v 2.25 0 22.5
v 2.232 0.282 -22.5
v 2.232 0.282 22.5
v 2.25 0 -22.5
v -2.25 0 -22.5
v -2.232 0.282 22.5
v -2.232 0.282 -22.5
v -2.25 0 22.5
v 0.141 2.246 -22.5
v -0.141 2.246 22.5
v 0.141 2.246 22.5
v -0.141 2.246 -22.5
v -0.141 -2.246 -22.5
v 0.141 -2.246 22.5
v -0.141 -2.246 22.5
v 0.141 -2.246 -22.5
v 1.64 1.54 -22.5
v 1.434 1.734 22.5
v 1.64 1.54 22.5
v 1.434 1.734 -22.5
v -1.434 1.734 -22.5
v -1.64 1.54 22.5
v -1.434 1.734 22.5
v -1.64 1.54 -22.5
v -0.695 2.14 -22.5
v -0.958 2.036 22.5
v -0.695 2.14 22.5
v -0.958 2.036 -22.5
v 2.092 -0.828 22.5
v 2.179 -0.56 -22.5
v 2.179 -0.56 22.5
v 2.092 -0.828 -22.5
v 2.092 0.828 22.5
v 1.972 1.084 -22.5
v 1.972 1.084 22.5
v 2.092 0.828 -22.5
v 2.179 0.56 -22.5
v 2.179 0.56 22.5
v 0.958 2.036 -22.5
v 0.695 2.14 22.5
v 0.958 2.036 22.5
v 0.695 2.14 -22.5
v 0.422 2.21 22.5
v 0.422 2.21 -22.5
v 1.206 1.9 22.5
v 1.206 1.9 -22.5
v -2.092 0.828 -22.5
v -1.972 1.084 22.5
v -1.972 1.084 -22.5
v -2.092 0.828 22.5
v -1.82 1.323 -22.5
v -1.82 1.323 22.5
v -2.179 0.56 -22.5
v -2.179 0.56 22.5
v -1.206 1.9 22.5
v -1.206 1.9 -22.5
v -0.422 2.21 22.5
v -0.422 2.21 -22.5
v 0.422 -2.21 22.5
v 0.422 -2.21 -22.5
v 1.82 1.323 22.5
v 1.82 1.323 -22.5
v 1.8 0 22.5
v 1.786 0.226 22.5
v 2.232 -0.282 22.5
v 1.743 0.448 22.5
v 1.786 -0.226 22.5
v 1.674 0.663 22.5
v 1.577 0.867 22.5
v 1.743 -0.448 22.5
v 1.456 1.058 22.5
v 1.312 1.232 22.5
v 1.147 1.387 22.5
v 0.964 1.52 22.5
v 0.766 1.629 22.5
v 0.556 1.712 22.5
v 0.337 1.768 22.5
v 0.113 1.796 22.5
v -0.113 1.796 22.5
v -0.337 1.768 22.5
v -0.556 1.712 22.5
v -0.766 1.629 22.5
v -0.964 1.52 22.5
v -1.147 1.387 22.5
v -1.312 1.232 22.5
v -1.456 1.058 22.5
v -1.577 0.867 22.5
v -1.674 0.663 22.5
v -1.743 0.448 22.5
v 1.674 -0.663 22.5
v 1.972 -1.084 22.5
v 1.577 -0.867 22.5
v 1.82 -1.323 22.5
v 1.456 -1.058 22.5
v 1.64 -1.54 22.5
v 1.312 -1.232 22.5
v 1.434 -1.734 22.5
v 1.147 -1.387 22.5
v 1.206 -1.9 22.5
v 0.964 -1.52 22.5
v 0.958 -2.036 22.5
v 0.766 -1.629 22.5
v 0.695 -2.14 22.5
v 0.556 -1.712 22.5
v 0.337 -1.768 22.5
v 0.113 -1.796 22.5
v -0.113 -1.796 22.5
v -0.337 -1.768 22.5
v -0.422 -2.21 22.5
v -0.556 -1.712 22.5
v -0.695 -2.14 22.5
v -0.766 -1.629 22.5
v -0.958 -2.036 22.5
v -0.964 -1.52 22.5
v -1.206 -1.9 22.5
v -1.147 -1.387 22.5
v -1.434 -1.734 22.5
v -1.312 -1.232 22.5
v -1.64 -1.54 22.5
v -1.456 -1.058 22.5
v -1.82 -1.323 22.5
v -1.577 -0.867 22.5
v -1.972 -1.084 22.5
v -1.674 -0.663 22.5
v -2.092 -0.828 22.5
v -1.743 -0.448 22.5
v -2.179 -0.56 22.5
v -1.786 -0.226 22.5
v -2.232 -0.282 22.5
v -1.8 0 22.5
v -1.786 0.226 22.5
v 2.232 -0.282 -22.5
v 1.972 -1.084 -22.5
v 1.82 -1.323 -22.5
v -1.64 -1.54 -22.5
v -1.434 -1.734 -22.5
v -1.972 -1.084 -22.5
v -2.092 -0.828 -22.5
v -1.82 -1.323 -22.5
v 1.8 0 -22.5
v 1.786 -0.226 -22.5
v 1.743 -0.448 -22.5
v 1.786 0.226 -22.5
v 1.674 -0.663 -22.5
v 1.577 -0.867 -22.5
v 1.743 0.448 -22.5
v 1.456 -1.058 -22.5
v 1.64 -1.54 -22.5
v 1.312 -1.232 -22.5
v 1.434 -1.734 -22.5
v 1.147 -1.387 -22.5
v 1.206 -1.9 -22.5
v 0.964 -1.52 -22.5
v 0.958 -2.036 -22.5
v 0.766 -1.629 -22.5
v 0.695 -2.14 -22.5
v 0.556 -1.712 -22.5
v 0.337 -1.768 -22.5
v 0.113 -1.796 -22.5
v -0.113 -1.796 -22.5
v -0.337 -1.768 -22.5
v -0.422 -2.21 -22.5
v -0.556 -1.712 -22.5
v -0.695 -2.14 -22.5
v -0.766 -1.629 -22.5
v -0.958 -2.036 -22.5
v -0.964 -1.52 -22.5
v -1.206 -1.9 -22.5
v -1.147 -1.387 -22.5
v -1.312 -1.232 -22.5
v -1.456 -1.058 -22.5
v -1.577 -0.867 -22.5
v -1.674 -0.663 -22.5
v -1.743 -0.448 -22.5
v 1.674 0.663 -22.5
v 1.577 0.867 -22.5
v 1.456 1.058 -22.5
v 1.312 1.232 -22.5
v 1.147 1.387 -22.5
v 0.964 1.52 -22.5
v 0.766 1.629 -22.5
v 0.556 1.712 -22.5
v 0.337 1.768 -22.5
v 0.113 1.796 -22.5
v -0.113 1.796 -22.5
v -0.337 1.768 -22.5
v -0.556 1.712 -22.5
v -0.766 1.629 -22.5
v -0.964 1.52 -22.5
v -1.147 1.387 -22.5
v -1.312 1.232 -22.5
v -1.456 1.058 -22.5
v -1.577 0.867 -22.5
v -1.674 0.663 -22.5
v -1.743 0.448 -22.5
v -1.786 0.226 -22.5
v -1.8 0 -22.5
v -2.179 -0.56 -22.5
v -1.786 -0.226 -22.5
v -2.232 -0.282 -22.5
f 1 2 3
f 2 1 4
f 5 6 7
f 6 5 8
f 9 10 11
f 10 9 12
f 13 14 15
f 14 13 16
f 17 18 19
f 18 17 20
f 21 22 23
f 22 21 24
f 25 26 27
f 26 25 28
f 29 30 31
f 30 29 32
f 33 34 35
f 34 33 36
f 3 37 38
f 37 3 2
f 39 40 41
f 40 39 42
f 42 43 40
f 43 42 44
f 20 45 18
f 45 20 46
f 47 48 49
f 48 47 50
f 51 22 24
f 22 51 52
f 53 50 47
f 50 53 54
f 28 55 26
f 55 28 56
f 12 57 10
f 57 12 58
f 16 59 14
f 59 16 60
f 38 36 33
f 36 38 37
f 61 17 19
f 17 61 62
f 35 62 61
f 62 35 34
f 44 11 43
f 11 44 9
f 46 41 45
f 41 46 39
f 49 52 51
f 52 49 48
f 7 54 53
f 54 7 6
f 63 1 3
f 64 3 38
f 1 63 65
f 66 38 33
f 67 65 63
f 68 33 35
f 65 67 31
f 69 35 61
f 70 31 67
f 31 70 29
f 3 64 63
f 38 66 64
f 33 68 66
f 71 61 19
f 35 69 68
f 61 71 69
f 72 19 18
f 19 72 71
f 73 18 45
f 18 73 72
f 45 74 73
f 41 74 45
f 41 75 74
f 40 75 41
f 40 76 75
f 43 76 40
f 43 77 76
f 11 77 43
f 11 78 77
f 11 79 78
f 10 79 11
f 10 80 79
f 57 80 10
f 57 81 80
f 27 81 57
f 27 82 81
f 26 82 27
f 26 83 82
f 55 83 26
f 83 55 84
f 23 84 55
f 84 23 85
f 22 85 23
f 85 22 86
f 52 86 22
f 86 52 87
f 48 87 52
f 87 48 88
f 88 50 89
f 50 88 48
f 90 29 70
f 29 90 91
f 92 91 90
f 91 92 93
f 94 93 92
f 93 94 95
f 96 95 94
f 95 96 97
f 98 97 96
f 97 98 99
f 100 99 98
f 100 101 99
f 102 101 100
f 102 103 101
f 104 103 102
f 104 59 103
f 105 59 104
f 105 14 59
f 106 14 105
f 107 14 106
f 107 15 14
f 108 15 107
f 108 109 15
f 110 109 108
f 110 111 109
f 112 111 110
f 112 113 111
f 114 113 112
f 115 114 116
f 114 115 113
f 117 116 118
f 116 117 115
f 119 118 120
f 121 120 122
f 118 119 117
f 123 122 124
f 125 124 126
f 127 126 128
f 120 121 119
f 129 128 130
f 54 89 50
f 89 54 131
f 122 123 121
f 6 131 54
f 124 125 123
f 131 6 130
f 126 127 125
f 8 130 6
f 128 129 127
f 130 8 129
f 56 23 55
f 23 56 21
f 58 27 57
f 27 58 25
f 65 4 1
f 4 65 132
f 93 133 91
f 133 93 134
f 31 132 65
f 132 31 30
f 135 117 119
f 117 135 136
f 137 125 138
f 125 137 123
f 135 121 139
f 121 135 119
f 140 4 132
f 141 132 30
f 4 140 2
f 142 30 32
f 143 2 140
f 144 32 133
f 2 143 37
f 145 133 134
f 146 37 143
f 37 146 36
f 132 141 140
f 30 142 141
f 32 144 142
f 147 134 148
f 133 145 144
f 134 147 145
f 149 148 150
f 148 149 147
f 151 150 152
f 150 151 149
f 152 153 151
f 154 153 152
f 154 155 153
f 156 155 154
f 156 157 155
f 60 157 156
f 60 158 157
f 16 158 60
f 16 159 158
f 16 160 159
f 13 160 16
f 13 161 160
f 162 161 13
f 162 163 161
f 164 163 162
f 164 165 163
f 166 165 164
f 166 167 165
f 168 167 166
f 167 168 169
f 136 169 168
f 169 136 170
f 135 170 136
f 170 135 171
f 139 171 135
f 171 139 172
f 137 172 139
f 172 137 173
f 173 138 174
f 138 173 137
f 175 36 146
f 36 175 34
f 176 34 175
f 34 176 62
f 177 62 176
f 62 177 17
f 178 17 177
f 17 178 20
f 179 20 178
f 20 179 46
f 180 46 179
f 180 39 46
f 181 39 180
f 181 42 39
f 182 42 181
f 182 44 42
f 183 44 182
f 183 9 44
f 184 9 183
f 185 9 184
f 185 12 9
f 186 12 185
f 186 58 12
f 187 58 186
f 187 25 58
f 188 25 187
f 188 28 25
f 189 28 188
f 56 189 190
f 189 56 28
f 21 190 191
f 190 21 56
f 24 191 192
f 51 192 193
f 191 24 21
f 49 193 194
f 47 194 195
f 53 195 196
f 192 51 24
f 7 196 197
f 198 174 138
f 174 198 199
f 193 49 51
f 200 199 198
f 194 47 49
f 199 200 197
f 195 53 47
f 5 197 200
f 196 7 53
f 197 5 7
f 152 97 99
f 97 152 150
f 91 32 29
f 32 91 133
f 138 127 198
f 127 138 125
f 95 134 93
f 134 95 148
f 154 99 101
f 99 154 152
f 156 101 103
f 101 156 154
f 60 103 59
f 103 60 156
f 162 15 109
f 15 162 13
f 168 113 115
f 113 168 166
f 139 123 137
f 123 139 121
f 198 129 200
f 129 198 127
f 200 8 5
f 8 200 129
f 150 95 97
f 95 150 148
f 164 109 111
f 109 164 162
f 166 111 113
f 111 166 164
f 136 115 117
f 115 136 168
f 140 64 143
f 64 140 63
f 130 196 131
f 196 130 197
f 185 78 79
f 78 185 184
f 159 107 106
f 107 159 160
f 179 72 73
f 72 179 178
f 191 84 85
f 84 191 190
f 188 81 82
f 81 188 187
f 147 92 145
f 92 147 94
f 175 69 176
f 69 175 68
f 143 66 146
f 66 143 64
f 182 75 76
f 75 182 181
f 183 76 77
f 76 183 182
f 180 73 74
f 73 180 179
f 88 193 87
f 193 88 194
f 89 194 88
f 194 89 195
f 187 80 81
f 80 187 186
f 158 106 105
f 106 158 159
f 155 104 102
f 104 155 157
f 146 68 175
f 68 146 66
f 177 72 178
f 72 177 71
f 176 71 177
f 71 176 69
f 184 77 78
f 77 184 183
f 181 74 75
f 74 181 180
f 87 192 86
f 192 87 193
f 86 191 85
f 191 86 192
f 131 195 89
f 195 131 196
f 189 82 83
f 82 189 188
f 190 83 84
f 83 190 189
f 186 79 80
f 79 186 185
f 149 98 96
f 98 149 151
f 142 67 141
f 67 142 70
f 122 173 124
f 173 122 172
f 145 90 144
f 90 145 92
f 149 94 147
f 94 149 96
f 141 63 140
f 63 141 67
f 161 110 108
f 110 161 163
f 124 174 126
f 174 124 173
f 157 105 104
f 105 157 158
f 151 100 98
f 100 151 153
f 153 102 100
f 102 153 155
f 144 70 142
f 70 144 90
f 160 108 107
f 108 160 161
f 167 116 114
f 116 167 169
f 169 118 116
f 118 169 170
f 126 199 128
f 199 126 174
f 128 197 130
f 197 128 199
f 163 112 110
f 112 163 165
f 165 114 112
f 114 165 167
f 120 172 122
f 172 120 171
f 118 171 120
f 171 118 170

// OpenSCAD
$fn = 50;


difference() {
	union() {
		translate(v = [0, 0, -22.5000000000]) {
			cylinder(h = 45, r = 2.2500000000);
		}
	}
	union() {
		translate(v = [0, 0, -100.0000000000]) {
			cylinder(h = 200, r = 1.8000000000);
		}
	}
}
